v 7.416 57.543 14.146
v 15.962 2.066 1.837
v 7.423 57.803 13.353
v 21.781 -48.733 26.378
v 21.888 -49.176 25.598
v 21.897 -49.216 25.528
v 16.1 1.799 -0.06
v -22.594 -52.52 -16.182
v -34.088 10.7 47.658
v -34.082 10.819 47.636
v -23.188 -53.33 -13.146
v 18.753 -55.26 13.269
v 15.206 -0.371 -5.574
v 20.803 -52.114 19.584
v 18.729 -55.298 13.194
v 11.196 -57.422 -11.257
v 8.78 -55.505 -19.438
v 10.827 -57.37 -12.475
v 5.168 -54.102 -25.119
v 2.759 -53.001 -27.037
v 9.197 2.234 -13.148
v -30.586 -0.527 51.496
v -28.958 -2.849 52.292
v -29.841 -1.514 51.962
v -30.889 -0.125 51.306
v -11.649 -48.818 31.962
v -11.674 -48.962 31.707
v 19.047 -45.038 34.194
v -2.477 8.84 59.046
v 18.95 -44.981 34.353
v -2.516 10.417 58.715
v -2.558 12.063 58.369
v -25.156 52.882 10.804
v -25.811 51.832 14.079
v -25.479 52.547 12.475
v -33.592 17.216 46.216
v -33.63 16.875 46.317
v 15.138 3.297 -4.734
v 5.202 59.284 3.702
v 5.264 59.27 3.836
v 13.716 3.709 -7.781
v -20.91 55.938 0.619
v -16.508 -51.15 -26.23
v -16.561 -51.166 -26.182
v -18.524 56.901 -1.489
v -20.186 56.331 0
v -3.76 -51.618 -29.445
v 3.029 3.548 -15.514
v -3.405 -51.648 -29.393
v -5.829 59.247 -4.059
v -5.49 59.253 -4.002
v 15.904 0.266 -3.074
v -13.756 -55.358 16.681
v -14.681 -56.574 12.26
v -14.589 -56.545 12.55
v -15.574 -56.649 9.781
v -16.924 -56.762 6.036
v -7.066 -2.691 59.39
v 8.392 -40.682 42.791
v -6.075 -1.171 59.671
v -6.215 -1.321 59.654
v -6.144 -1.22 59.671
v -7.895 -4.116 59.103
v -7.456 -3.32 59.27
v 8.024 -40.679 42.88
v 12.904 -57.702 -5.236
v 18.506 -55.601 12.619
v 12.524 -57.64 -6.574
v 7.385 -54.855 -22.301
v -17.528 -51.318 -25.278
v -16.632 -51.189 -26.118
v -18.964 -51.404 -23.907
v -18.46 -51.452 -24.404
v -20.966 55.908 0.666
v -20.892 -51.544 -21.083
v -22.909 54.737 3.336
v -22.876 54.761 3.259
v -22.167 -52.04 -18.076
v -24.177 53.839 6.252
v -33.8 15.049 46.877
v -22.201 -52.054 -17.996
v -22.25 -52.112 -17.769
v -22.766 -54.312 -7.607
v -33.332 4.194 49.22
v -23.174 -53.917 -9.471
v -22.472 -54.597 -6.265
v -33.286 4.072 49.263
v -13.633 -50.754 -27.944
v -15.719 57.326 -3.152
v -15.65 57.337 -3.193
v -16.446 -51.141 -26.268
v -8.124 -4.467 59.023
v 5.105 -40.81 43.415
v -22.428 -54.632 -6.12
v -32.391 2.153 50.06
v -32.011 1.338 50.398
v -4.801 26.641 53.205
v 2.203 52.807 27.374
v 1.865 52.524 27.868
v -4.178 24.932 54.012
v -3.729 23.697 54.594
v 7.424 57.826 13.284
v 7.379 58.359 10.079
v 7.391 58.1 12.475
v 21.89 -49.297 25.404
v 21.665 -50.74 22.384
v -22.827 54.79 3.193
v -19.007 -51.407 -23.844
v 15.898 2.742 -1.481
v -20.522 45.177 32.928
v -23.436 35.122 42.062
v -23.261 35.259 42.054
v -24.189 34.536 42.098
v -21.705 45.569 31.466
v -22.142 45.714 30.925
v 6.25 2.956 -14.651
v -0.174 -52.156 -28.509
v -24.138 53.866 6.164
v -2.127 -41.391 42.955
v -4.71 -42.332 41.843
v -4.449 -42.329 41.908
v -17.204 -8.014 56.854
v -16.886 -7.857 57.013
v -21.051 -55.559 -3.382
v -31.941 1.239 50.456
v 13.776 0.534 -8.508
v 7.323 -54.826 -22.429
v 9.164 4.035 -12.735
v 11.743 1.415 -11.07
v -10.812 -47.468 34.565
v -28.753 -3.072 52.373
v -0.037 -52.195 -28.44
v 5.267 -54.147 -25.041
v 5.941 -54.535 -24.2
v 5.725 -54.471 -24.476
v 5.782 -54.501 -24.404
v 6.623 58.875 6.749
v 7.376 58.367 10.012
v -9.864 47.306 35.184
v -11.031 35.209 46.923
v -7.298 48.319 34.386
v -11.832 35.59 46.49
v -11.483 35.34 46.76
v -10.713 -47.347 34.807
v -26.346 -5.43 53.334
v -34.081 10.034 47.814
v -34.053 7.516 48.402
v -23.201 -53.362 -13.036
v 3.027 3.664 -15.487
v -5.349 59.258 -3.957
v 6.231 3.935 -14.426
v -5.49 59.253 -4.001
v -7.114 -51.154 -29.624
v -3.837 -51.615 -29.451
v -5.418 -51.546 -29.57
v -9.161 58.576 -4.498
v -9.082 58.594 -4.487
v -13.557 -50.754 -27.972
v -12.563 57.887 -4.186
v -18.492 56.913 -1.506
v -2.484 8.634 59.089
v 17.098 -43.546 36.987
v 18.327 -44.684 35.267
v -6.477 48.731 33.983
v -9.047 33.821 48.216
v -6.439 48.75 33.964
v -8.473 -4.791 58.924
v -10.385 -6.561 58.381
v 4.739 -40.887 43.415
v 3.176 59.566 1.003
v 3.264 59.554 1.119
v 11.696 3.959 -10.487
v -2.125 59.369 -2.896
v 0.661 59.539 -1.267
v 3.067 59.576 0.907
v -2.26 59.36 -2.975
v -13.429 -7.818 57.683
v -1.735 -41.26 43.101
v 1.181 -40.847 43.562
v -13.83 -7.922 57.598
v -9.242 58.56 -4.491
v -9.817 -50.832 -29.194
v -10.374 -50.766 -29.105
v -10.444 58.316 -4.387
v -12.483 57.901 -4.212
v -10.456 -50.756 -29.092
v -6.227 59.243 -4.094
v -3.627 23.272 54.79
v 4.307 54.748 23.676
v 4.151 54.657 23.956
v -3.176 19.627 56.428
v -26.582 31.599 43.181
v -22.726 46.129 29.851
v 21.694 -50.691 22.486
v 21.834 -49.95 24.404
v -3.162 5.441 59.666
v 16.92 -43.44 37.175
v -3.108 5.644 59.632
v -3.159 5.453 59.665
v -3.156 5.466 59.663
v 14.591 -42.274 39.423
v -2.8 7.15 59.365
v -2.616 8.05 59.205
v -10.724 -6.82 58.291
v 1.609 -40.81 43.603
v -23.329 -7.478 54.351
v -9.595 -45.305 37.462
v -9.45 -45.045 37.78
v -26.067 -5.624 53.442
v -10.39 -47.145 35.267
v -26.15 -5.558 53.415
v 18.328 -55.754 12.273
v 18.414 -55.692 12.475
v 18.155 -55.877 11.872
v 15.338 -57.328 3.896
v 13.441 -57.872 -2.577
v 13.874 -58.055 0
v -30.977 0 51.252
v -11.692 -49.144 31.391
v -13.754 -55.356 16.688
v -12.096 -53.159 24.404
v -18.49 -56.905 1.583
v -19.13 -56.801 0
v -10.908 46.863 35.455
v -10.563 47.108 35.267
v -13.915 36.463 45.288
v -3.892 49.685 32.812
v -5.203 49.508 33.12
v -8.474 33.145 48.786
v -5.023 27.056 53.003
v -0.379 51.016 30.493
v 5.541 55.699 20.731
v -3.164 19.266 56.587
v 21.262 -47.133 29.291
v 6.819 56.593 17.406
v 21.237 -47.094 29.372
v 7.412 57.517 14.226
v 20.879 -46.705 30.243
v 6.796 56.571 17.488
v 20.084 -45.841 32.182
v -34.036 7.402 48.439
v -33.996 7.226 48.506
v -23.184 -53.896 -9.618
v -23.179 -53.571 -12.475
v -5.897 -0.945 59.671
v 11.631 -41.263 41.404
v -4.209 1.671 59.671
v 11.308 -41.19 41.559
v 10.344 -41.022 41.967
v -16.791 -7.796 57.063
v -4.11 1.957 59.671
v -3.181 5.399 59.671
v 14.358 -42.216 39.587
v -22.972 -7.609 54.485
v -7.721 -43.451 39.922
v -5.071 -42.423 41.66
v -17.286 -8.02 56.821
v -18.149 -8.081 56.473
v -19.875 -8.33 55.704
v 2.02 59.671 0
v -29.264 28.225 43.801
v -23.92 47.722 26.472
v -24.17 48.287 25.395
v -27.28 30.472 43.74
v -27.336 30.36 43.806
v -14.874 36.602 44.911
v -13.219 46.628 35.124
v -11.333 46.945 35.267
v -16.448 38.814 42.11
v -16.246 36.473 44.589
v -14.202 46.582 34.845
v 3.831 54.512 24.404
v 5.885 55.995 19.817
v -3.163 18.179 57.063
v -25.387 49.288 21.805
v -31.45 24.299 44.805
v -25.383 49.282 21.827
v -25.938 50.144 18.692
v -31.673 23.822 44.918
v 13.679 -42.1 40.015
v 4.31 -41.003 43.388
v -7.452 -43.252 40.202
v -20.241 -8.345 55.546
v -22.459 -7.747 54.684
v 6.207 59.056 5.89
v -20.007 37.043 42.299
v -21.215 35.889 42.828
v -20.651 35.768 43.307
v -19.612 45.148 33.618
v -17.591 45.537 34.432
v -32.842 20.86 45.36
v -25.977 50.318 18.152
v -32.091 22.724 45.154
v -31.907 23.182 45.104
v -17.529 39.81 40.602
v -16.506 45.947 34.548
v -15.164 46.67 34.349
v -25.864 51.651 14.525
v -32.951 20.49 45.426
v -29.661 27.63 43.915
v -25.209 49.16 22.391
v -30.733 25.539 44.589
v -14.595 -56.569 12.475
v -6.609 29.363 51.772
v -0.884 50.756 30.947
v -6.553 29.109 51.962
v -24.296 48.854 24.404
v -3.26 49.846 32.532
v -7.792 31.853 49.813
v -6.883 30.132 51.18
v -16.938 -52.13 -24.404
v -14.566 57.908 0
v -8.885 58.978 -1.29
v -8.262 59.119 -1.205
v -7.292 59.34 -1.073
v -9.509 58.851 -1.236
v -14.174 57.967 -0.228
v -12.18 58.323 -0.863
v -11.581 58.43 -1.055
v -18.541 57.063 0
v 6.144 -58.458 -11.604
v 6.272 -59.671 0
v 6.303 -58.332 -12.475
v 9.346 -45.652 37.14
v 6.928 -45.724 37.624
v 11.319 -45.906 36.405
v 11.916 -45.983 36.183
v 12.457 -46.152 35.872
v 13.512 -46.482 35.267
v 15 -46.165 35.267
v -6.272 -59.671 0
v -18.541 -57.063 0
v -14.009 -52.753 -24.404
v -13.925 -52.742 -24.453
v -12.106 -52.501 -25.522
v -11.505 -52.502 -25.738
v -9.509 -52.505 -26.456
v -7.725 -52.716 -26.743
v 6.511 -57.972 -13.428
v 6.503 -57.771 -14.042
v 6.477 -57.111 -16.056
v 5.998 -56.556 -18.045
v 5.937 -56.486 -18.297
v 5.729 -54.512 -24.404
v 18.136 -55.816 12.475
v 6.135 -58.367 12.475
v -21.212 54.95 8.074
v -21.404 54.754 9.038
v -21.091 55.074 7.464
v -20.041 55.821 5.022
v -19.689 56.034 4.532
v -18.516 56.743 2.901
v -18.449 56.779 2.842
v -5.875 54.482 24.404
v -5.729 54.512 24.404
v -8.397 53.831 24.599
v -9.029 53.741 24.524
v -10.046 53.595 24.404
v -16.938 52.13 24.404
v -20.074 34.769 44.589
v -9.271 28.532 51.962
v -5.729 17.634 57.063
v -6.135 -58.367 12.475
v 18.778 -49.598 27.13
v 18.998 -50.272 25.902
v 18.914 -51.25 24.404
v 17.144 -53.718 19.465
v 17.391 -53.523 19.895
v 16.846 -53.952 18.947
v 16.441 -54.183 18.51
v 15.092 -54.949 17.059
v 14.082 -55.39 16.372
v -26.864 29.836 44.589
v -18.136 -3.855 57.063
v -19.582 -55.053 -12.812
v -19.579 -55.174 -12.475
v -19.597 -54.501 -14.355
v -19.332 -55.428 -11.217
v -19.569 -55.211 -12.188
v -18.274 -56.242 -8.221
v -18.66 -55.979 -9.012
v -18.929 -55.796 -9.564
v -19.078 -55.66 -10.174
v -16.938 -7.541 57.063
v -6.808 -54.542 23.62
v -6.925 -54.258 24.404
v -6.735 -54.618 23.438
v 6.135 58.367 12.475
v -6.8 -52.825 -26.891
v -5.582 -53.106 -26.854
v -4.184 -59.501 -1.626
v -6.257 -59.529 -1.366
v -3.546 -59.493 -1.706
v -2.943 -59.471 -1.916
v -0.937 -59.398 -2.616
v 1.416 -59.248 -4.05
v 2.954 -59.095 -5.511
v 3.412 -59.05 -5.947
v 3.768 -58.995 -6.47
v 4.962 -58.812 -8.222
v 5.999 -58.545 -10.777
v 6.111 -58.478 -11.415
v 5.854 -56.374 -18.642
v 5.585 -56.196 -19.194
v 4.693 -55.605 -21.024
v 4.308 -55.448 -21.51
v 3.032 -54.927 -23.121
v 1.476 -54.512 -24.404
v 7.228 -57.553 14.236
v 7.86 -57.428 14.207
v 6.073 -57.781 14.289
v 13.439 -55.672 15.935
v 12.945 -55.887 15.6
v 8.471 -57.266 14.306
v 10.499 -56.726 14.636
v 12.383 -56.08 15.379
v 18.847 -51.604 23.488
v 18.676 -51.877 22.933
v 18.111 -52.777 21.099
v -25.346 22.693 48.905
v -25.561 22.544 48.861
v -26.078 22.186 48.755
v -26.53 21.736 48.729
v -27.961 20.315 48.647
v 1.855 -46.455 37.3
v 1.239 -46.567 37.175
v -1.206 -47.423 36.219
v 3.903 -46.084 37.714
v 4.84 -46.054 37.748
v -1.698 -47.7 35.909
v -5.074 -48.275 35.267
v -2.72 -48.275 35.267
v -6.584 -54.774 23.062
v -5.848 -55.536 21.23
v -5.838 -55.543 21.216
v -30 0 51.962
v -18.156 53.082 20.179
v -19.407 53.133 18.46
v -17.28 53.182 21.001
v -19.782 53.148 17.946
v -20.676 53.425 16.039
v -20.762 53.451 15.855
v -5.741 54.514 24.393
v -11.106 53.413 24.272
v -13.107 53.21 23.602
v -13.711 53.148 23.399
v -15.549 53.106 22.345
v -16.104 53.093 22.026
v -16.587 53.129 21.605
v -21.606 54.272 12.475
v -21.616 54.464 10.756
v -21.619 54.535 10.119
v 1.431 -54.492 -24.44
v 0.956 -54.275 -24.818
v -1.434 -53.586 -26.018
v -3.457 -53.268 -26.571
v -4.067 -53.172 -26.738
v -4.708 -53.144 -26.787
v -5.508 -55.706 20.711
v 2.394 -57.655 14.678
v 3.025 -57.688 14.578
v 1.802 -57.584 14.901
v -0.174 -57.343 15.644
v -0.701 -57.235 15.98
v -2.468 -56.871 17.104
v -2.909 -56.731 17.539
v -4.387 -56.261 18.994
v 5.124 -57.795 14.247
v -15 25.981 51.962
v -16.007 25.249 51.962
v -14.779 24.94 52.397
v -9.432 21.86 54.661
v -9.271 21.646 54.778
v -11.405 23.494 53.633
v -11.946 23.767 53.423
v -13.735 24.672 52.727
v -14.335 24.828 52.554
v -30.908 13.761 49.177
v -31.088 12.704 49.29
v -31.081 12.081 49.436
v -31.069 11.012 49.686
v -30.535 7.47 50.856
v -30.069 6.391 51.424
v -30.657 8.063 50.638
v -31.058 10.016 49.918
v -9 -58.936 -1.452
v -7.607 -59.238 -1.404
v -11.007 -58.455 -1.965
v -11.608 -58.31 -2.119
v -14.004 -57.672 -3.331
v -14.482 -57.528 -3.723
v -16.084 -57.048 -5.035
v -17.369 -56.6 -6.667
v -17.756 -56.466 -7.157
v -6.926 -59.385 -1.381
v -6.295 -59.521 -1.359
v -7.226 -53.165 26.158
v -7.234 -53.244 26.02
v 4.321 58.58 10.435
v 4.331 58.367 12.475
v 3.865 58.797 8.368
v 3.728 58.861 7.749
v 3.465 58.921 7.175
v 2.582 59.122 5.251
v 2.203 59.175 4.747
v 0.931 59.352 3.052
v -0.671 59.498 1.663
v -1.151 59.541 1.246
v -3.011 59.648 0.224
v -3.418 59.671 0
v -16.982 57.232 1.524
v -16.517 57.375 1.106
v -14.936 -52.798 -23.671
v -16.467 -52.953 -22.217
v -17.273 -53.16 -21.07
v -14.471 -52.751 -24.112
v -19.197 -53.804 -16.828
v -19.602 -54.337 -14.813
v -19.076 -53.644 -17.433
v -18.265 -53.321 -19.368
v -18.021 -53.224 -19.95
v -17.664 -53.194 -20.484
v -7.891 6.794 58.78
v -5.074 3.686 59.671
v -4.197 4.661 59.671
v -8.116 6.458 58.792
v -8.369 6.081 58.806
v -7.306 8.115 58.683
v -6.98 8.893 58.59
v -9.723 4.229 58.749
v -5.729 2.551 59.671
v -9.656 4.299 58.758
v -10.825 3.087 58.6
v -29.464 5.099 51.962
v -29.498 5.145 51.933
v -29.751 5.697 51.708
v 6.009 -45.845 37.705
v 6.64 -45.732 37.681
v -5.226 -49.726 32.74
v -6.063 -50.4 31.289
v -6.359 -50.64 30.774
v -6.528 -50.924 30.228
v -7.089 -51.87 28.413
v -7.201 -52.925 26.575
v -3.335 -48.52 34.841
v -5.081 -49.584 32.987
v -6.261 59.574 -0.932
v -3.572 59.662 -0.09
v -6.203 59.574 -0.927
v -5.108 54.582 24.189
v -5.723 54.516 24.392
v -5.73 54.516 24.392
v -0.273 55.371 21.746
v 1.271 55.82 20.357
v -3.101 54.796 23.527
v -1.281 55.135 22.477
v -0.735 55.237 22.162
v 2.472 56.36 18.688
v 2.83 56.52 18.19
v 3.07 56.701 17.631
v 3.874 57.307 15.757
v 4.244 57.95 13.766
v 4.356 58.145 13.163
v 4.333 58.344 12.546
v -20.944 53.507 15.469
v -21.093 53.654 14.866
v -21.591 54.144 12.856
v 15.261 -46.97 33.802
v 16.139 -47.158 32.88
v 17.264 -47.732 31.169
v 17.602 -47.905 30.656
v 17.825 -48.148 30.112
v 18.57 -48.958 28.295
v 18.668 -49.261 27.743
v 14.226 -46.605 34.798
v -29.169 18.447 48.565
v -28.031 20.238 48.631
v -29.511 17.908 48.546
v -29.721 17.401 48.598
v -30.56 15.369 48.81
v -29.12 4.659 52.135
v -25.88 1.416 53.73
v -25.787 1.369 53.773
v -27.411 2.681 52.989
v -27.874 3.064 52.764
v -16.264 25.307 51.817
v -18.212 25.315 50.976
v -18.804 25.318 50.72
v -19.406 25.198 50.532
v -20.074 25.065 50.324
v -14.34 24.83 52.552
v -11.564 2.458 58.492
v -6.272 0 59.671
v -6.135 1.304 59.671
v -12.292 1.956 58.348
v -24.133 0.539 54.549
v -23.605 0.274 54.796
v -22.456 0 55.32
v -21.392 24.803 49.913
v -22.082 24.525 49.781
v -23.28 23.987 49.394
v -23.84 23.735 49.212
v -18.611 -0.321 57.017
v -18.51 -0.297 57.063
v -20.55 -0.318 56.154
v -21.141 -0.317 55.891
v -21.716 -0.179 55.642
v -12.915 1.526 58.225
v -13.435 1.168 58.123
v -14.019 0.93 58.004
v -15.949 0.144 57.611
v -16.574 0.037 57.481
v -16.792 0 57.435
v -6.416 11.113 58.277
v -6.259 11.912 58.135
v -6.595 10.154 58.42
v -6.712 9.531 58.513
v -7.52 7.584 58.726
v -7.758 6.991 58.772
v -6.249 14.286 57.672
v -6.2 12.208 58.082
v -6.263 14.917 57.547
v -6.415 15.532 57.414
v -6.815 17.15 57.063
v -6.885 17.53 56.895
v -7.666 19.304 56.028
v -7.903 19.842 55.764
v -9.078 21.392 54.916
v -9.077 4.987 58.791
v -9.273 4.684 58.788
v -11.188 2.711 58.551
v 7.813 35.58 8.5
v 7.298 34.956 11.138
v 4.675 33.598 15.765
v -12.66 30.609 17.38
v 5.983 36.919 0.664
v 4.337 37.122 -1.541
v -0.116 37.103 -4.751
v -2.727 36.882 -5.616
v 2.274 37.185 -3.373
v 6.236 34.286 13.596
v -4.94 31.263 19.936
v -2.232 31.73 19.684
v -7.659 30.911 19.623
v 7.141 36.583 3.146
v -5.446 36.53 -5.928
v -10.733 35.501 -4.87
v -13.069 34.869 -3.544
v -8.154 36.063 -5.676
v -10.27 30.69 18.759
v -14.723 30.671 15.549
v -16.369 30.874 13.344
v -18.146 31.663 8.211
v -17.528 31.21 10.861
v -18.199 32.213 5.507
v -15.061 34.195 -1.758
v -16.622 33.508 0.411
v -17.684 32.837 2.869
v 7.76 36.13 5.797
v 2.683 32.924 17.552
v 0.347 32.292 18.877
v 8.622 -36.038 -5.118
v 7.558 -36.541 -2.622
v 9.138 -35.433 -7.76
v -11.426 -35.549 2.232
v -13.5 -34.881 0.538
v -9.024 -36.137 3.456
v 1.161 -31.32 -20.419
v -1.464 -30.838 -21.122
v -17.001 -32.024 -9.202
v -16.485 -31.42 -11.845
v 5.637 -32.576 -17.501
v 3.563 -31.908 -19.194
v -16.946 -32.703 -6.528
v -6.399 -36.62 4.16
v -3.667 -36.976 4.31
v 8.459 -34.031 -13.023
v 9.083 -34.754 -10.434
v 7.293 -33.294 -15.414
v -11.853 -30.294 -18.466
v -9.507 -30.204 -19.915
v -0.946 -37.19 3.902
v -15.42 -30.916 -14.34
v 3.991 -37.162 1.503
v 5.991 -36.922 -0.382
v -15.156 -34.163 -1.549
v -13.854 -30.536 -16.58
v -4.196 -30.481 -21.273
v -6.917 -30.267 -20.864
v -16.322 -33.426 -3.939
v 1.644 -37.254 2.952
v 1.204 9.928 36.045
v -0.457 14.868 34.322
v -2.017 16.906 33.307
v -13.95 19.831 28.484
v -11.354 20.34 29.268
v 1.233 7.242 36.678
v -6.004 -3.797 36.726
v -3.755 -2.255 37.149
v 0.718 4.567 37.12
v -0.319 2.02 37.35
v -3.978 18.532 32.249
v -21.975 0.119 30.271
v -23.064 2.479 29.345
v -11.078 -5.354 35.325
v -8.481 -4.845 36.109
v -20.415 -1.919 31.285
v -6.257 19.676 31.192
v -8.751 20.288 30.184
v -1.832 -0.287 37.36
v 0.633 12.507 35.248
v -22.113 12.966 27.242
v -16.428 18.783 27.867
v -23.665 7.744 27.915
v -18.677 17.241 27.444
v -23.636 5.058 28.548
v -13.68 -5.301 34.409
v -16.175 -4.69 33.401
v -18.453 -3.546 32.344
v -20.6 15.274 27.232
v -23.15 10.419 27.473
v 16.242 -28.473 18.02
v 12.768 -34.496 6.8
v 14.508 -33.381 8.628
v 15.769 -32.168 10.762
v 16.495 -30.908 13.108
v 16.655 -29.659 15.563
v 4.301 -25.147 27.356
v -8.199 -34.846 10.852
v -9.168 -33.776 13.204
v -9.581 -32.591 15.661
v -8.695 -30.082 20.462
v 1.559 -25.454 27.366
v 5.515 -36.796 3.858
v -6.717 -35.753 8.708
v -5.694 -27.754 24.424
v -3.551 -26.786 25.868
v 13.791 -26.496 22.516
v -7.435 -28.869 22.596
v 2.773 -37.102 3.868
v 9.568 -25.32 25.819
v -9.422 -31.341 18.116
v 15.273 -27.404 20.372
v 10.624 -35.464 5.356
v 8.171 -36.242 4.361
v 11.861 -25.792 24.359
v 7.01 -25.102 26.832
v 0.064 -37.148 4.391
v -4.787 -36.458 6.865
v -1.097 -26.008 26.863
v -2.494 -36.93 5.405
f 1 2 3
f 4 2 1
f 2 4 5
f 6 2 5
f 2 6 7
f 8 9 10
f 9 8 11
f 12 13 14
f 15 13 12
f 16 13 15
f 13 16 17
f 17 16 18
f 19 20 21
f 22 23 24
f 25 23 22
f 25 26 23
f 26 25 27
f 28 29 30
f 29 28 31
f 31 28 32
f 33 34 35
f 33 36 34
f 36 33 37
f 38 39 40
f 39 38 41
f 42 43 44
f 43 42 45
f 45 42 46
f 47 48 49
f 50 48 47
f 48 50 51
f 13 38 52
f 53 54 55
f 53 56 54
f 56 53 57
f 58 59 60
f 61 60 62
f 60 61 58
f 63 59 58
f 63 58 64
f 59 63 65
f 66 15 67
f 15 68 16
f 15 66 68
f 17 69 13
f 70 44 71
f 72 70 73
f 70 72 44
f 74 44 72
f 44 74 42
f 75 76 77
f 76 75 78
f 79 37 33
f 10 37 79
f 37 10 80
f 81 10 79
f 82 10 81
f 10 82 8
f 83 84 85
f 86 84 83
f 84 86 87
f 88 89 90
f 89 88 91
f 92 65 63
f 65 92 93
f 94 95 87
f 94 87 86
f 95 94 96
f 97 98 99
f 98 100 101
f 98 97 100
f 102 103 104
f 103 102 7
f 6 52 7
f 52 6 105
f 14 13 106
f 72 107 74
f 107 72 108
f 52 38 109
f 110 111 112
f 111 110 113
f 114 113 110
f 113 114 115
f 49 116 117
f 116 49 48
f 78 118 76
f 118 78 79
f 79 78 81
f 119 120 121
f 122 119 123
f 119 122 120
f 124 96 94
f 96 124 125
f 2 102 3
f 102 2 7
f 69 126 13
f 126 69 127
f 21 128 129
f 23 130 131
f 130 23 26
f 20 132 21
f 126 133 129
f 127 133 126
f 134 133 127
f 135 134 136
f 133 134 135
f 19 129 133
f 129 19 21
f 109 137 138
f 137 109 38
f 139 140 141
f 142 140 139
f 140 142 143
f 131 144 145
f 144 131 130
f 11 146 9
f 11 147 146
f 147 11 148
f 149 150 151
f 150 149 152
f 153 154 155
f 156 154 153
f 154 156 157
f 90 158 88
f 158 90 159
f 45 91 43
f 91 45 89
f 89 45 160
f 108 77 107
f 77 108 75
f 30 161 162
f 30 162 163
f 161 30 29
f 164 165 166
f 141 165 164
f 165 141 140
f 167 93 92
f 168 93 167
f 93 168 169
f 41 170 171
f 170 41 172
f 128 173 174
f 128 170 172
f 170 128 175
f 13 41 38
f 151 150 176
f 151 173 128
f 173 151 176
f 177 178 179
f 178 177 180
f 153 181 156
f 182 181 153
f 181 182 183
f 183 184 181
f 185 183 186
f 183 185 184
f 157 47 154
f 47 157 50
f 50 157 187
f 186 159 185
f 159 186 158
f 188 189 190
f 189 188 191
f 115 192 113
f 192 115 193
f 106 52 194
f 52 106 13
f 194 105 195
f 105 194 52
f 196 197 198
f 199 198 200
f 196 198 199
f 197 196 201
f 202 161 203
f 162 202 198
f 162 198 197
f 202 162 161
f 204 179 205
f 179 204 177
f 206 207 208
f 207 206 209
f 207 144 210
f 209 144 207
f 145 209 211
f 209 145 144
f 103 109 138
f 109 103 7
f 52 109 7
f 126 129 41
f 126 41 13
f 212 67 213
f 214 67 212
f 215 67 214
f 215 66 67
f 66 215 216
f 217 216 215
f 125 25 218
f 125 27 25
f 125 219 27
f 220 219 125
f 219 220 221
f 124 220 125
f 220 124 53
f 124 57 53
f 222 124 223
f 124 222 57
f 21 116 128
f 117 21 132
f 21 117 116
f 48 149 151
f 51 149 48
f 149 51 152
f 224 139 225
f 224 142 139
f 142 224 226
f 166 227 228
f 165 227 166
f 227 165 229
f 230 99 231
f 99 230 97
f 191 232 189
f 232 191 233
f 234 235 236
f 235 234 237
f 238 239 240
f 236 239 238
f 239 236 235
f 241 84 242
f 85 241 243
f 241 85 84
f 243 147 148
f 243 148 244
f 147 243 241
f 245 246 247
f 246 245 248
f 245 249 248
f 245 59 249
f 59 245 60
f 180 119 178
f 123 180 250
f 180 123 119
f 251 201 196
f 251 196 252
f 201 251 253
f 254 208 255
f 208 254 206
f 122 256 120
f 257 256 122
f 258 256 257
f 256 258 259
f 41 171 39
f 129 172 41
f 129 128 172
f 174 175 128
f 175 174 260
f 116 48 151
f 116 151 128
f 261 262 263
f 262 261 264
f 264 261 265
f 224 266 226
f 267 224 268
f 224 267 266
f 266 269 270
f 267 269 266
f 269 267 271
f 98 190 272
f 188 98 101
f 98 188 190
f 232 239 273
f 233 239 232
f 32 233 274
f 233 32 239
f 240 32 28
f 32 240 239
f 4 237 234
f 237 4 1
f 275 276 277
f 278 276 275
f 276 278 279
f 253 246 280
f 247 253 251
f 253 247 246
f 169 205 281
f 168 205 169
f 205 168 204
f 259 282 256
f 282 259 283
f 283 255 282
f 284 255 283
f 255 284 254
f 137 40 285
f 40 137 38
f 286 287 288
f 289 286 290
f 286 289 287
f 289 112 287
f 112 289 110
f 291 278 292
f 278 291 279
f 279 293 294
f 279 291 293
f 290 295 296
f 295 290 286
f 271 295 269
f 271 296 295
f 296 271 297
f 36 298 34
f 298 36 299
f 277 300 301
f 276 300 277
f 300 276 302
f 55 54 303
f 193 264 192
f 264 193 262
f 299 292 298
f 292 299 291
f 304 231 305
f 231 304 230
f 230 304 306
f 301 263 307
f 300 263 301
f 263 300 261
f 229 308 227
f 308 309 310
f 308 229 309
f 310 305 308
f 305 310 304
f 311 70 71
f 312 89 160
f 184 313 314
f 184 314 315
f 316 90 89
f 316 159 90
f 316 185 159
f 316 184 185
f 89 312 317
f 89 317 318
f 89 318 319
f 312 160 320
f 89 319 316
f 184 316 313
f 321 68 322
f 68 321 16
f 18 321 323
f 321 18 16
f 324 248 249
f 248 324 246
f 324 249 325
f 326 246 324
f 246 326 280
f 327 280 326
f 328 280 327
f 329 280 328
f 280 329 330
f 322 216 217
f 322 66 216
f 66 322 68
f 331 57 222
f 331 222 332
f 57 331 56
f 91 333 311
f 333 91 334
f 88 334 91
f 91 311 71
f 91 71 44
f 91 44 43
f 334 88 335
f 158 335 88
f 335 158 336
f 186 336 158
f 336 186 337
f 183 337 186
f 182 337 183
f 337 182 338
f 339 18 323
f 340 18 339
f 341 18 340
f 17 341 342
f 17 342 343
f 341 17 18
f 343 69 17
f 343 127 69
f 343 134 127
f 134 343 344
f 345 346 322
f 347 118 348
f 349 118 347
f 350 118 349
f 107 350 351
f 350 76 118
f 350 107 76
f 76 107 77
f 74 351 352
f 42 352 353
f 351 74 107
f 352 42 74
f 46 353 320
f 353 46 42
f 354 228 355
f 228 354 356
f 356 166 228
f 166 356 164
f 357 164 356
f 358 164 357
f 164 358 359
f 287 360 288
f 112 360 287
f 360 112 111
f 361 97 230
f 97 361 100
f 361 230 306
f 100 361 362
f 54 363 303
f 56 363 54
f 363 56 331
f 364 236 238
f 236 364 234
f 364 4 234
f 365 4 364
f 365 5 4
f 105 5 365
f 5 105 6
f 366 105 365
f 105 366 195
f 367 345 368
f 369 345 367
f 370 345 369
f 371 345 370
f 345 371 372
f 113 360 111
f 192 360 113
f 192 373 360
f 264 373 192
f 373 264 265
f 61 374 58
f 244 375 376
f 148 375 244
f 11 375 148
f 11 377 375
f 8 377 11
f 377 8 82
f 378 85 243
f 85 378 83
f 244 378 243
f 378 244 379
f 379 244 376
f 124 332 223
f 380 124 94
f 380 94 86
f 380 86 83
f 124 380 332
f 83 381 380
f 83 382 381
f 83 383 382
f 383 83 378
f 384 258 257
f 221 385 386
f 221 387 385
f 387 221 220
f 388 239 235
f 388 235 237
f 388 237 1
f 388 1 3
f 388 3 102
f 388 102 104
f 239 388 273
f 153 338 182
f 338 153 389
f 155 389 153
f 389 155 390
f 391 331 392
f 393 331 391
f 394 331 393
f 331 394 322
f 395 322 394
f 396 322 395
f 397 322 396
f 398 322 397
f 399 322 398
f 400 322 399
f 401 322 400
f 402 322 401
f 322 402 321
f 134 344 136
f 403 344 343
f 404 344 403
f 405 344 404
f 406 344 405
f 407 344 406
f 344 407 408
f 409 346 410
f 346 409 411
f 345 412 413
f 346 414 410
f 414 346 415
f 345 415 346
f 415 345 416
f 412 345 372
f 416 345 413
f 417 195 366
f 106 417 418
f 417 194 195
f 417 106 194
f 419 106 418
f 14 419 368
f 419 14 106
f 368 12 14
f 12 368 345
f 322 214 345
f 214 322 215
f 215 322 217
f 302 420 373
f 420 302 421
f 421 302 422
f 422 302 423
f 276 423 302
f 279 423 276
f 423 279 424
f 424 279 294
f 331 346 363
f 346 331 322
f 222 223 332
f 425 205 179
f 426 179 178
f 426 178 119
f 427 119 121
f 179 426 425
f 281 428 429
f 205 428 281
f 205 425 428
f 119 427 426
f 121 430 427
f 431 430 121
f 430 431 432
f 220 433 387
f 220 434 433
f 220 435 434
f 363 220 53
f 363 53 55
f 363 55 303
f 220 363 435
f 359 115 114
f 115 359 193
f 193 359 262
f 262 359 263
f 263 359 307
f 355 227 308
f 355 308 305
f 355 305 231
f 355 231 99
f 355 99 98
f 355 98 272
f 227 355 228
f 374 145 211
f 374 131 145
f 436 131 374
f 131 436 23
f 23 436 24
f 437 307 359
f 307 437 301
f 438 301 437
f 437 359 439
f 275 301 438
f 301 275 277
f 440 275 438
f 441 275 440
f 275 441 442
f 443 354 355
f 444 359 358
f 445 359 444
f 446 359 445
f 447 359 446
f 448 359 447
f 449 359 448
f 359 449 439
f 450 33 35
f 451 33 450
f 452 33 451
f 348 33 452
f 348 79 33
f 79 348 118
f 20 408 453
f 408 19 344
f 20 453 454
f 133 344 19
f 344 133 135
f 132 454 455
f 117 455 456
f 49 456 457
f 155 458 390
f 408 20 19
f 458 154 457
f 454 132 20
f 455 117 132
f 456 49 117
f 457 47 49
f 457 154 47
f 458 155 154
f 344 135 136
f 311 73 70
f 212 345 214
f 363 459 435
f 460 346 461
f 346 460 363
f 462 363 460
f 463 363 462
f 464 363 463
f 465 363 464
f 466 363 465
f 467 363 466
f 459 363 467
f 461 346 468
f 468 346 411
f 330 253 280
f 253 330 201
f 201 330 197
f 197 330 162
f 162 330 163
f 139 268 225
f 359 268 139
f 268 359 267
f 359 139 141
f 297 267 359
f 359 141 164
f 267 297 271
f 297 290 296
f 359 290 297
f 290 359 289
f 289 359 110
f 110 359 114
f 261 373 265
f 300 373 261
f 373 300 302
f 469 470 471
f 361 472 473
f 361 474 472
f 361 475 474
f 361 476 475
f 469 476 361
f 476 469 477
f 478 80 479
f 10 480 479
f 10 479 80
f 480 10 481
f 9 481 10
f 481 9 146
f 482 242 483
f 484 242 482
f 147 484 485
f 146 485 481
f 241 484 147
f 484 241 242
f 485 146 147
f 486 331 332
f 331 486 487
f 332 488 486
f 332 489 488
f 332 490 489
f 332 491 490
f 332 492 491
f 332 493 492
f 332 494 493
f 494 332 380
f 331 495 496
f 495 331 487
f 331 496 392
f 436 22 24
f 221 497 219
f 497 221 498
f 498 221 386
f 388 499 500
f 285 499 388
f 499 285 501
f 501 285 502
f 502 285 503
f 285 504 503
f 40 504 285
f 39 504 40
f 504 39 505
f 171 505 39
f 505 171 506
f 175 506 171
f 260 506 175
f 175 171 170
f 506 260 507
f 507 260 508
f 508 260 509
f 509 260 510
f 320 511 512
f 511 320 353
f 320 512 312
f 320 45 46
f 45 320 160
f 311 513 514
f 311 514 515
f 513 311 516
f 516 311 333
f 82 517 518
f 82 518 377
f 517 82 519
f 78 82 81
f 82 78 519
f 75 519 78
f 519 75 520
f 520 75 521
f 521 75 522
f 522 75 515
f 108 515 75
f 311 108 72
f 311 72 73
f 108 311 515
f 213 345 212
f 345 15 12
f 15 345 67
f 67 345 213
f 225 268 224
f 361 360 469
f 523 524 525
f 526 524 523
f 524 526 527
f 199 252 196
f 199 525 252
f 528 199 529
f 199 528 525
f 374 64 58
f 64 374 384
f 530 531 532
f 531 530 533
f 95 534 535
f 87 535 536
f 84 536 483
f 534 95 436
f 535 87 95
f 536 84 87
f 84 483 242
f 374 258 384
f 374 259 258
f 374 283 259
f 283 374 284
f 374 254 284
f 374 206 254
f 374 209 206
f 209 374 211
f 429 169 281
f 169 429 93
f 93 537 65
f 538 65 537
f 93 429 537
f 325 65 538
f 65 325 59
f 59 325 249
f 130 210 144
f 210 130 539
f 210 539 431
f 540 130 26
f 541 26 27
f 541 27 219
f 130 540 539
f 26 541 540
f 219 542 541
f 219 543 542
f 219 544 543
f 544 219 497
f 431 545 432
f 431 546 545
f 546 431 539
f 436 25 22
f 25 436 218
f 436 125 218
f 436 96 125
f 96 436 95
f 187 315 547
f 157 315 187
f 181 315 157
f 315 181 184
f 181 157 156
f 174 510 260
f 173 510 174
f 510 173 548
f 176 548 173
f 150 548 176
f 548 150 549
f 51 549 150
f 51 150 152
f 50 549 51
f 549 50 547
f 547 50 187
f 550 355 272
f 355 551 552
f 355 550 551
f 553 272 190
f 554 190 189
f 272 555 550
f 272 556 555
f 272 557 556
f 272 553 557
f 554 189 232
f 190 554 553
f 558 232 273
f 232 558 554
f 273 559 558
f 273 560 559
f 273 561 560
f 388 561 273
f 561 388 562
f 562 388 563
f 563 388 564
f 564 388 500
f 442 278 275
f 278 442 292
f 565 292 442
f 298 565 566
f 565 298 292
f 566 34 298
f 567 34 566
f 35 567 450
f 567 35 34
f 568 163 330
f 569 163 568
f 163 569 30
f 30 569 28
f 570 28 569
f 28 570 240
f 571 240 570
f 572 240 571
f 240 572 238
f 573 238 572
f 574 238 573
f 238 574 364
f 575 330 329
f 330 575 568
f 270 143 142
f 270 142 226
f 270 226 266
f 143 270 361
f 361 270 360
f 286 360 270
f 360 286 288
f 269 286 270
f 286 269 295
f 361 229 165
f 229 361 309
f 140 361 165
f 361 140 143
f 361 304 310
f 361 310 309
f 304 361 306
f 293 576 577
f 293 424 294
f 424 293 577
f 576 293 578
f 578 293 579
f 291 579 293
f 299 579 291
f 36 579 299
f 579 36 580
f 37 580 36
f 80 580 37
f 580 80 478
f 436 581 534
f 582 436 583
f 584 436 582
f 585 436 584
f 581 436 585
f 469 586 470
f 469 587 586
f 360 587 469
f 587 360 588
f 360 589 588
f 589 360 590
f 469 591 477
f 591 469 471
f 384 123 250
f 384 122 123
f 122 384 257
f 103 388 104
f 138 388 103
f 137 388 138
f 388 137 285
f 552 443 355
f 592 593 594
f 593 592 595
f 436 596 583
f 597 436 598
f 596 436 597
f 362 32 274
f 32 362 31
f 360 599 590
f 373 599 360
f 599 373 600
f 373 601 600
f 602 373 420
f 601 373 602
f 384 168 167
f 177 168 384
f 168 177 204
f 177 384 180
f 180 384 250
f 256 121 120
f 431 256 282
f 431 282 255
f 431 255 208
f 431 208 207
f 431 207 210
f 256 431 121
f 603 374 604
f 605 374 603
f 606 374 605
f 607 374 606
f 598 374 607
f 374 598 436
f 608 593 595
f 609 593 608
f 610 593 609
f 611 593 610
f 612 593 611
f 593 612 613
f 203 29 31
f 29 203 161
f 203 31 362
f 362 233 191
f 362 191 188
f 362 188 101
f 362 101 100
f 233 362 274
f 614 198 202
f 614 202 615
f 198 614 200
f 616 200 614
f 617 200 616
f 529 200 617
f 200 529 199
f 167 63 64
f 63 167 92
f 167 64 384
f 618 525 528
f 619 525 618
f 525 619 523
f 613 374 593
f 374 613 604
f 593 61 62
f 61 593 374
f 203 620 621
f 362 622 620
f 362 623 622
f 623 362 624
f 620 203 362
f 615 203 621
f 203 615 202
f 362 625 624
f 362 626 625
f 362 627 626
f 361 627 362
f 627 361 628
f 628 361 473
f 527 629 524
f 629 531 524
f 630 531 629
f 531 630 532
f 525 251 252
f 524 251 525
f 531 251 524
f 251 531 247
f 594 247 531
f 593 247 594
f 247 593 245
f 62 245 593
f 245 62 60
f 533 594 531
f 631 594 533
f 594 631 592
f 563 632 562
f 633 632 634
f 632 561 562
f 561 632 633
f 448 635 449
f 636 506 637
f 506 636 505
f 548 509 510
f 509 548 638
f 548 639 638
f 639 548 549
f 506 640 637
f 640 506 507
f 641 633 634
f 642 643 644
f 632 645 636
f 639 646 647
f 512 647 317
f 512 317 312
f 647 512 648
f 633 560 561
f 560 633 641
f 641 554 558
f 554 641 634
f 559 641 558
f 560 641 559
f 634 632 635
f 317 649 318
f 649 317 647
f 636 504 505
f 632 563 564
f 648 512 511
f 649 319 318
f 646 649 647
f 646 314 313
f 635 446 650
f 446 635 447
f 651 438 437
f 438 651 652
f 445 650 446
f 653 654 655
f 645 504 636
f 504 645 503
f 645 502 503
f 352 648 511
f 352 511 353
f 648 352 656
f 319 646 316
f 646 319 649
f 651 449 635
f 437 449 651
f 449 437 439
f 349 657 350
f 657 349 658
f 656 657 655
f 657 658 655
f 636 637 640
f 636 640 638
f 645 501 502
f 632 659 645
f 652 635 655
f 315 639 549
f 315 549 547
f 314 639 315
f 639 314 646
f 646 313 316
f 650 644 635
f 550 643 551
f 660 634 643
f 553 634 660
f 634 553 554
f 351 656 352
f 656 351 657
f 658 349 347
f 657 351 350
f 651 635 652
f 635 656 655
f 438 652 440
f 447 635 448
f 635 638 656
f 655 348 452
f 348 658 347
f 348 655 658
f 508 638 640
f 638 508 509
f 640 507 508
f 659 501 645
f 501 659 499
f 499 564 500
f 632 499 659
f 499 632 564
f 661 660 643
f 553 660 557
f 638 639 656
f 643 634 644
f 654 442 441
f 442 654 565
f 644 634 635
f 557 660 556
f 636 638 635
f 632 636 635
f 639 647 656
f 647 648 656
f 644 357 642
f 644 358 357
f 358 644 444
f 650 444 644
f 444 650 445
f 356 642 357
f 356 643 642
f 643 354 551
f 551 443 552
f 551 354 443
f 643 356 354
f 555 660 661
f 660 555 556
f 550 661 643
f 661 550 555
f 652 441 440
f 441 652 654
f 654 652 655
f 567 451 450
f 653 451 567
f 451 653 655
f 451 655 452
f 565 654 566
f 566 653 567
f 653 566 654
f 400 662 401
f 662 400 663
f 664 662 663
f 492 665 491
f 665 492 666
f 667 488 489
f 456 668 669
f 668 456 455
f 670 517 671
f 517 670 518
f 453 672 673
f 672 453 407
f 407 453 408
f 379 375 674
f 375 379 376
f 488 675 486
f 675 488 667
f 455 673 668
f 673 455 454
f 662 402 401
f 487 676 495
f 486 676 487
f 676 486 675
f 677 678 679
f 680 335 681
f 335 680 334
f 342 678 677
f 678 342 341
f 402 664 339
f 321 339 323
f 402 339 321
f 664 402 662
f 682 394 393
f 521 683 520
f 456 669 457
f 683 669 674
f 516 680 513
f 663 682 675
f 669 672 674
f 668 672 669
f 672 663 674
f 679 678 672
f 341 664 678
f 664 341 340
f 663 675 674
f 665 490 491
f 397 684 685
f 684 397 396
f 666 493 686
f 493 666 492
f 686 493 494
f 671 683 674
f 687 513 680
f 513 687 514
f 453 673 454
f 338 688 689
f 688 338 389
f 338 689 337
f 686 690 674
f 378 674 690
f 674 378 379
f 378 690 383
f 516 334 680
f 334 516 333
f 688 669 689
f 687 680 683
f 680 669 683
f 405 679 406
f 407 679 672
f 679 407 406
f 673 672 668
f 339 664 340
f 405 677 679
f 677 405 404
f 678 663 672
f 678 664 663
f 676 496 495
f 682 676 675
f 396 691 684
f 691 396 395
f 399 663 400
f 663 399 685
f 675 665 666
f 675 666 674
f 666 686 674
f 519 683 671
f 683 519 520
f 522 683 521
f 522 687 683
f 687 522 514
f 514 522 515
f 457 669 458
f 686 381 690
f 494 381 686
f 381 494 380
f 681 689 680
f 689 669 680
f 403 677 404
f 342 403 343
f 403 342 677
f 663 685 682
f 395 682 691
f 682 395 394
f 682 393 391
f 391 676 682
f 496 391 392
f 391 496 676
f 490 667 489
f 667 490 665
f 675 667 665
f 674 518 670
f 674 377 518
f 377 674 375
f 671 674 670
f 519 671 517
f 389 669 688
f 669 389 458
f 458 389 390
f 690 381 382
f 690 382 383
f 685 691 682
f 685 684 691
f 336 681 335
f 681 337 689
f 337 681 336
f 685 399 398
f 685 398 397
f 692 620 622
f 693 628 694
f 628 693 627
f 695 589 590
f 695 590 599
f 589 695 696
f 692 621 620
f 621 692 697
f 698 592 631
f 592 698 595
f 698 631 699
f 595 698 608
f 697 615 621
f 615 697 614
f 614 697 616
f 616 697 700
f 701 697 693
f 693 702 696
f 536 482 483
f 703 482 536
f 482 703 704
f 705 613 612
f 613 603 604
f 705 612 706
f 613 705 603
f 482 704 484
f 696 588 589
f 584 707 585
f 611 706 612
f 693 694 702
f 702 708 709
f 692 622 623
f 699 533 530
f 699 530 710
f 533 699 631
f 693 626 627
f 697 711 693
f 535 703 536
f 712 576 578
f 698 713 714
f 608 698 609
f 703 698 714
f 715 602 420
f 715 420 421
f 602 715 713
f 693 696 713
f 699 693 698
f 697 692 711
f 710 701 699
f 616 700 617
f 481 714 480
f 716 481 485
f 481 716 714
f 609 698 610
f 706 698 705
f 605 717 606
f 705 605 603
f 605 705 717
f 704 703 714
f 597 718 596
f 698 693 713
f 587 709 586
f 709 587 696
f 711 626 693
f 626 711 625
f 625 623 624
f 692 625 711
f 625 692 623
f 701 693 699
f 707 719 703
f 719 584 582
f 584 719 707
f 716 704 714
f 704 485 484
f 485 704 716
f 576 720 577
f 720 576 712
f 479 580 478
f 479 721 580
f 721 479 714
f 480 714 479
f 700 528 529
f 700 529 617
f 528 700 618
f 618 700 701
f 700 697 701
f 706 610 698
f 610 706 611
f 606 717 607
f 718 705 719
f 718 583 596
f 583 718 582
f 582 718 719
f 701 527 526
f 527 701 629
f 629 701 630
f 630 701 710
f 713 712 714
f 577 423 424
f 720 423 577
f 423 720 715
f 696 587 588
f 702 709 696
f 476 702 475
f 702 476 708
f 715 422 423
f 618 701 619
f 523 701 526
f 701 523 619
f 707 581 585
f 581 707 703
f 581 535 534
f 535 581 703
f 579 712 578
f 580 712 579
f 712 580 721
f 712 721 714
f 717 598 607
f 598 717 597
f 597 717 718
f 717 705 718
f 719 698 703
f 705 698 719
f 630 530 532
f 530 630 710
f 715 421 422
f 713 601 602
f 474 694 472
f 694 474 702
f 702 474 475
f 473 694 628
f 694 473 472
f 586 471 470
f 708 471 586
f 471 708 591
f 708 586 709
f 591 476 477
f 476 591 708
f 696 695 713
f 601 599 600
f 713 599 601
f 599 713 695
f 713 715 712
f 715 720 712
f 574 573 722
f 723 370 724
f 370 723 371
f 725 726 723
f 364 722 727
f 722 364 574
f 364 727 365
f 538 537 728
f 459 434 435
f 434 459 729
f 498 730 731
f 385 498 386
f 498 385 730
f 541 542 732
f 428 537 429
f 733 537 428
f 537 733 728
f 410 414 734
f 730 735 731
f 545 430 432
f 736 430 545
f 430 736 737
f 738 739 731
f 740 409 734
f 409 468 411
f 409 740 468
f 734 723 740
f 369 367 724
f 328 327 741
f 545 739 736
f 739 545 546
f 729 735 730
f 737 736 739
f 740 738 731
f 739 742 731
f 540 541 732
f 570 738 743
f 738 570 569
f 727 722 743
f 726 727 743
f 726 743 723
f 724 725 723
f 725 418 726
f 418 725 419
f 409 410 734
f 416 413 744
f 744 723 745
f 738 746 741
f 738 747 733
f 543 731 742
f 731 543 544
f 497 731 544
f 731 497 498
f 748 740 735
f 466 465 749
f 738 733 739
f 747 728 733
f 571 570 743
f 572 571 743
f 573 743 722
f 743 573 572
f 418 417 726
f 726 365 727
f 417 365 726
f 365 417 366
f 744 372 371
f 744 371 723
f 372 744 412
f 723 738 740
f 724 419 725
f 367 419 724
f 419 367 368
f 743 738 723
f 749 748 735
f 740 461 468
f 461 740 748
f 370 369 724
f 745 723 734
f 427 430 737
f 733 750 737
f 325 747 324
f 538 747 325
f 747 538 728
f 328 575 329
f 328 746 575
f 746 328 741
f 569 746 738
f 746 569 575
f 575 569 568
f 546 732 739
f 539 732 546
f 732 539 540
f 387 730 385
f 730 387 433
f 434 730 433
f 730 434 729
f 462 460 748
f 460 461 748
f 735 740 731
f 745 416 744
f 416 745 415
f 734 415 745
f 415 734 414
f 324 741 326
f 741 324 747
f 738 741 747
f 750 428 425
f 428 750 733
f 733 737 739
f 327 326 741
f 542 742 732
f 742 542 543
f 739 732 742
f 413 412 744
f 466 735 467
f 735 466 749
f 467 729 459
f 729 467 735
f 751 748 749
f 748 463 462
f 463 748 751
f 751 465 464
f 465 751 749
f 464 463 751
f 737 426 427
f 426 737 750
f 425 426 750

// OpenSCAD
difference() {
	intersection() {
		hull() {
			rotate(a = -15.9318645053, v = [-0.2231683933, 0.1598212940, 0.0000000000]) {
				rotate(a = -90.0000000000, v = [0.9912407072, 0.1320676359, -0.0000000000]) {
					cylinder(h = 60, r = 16.2000000000);
				}
			}
			rotate(a = -15.9318645053, v = [-0.2231683933, 0.1598212940, 0.0000000000]) {
				rotate(a = -90.0000000000, v = [-0.9912407072, 0.1320676359, 0.0000000000]) {
					cylinder(h = 60, r = 16.2000000000);
				}
			}
			rotate(a = -15.9318645053, v = [-0.2231683933, 0.1598212940, 0.0000000000]) {
				rotate(a = -27.0328006209, v = [0.4204111676, 0.1726996284, -0.0000000000]) {
					cylinder(h = 60, r = 16.2000000000);
				}
			}
			rotate(a = -15.9318645053, v = [-0.2231683933, 0.1598212940, 0.0000000000]) {
				rotate(a = -52.3213918087, v = [-0.7689947114, -0.1871979683, 0.0000000000]) {
					cylinder(h = 60, r = 16.2000000000);
				}
			}
		}
		sphere(r = 60);
	}
	union() {
		rotate(a = -15.9318645053, v = [-0.2231683933, 0.1598212940, 0.0000000000]) {
			rotate(a = -90.0000000000, v = [0.9912407072, 0.1320676359, -0.0000000000]) {
				translate(v = [0, 0, 35]) {
					cylinder(h = 100, r = 13.2000000000);
				}
			}
		}
		rotate(a = -15.9318645053, v = [-0.2231683933, 0.1598212940, 0.0000000000]) {
			rotate(a = -90.0000000000, v = [-0.9912407072, 0.1320676359, 0.0000000000]) {
				translate(v = [0, 0, 35]) {
					cylinder(h = 100, r = 13.2000000000);
				}
			}
		}
		rotate(a = -15.9318645053, v = [-0.2231683933, 0.1598212940, 0.0000000000]) {
			rotate(a = -27.0328006209, v = [0.4204111676, 0.1726996284, -0.0000000000]) {
				translate(v = [0, 0, 35]) {
					cylinder(h = 100, r = 13.2000000000);
				}
			}
		}
		rotate(a = -15.9318645053, v = [-0.2231683933, 0.1598212940, 0.0000000000]) {
			rotate(a = -52.3213918087, v = [-0.7689947114, -0.1871979683, 0.0000000000]) {
				translate(v = [0, 0, 35]) {
					cylinder(h = 100, r = 13.2000000000);
				}
			}
		}
	}
}
